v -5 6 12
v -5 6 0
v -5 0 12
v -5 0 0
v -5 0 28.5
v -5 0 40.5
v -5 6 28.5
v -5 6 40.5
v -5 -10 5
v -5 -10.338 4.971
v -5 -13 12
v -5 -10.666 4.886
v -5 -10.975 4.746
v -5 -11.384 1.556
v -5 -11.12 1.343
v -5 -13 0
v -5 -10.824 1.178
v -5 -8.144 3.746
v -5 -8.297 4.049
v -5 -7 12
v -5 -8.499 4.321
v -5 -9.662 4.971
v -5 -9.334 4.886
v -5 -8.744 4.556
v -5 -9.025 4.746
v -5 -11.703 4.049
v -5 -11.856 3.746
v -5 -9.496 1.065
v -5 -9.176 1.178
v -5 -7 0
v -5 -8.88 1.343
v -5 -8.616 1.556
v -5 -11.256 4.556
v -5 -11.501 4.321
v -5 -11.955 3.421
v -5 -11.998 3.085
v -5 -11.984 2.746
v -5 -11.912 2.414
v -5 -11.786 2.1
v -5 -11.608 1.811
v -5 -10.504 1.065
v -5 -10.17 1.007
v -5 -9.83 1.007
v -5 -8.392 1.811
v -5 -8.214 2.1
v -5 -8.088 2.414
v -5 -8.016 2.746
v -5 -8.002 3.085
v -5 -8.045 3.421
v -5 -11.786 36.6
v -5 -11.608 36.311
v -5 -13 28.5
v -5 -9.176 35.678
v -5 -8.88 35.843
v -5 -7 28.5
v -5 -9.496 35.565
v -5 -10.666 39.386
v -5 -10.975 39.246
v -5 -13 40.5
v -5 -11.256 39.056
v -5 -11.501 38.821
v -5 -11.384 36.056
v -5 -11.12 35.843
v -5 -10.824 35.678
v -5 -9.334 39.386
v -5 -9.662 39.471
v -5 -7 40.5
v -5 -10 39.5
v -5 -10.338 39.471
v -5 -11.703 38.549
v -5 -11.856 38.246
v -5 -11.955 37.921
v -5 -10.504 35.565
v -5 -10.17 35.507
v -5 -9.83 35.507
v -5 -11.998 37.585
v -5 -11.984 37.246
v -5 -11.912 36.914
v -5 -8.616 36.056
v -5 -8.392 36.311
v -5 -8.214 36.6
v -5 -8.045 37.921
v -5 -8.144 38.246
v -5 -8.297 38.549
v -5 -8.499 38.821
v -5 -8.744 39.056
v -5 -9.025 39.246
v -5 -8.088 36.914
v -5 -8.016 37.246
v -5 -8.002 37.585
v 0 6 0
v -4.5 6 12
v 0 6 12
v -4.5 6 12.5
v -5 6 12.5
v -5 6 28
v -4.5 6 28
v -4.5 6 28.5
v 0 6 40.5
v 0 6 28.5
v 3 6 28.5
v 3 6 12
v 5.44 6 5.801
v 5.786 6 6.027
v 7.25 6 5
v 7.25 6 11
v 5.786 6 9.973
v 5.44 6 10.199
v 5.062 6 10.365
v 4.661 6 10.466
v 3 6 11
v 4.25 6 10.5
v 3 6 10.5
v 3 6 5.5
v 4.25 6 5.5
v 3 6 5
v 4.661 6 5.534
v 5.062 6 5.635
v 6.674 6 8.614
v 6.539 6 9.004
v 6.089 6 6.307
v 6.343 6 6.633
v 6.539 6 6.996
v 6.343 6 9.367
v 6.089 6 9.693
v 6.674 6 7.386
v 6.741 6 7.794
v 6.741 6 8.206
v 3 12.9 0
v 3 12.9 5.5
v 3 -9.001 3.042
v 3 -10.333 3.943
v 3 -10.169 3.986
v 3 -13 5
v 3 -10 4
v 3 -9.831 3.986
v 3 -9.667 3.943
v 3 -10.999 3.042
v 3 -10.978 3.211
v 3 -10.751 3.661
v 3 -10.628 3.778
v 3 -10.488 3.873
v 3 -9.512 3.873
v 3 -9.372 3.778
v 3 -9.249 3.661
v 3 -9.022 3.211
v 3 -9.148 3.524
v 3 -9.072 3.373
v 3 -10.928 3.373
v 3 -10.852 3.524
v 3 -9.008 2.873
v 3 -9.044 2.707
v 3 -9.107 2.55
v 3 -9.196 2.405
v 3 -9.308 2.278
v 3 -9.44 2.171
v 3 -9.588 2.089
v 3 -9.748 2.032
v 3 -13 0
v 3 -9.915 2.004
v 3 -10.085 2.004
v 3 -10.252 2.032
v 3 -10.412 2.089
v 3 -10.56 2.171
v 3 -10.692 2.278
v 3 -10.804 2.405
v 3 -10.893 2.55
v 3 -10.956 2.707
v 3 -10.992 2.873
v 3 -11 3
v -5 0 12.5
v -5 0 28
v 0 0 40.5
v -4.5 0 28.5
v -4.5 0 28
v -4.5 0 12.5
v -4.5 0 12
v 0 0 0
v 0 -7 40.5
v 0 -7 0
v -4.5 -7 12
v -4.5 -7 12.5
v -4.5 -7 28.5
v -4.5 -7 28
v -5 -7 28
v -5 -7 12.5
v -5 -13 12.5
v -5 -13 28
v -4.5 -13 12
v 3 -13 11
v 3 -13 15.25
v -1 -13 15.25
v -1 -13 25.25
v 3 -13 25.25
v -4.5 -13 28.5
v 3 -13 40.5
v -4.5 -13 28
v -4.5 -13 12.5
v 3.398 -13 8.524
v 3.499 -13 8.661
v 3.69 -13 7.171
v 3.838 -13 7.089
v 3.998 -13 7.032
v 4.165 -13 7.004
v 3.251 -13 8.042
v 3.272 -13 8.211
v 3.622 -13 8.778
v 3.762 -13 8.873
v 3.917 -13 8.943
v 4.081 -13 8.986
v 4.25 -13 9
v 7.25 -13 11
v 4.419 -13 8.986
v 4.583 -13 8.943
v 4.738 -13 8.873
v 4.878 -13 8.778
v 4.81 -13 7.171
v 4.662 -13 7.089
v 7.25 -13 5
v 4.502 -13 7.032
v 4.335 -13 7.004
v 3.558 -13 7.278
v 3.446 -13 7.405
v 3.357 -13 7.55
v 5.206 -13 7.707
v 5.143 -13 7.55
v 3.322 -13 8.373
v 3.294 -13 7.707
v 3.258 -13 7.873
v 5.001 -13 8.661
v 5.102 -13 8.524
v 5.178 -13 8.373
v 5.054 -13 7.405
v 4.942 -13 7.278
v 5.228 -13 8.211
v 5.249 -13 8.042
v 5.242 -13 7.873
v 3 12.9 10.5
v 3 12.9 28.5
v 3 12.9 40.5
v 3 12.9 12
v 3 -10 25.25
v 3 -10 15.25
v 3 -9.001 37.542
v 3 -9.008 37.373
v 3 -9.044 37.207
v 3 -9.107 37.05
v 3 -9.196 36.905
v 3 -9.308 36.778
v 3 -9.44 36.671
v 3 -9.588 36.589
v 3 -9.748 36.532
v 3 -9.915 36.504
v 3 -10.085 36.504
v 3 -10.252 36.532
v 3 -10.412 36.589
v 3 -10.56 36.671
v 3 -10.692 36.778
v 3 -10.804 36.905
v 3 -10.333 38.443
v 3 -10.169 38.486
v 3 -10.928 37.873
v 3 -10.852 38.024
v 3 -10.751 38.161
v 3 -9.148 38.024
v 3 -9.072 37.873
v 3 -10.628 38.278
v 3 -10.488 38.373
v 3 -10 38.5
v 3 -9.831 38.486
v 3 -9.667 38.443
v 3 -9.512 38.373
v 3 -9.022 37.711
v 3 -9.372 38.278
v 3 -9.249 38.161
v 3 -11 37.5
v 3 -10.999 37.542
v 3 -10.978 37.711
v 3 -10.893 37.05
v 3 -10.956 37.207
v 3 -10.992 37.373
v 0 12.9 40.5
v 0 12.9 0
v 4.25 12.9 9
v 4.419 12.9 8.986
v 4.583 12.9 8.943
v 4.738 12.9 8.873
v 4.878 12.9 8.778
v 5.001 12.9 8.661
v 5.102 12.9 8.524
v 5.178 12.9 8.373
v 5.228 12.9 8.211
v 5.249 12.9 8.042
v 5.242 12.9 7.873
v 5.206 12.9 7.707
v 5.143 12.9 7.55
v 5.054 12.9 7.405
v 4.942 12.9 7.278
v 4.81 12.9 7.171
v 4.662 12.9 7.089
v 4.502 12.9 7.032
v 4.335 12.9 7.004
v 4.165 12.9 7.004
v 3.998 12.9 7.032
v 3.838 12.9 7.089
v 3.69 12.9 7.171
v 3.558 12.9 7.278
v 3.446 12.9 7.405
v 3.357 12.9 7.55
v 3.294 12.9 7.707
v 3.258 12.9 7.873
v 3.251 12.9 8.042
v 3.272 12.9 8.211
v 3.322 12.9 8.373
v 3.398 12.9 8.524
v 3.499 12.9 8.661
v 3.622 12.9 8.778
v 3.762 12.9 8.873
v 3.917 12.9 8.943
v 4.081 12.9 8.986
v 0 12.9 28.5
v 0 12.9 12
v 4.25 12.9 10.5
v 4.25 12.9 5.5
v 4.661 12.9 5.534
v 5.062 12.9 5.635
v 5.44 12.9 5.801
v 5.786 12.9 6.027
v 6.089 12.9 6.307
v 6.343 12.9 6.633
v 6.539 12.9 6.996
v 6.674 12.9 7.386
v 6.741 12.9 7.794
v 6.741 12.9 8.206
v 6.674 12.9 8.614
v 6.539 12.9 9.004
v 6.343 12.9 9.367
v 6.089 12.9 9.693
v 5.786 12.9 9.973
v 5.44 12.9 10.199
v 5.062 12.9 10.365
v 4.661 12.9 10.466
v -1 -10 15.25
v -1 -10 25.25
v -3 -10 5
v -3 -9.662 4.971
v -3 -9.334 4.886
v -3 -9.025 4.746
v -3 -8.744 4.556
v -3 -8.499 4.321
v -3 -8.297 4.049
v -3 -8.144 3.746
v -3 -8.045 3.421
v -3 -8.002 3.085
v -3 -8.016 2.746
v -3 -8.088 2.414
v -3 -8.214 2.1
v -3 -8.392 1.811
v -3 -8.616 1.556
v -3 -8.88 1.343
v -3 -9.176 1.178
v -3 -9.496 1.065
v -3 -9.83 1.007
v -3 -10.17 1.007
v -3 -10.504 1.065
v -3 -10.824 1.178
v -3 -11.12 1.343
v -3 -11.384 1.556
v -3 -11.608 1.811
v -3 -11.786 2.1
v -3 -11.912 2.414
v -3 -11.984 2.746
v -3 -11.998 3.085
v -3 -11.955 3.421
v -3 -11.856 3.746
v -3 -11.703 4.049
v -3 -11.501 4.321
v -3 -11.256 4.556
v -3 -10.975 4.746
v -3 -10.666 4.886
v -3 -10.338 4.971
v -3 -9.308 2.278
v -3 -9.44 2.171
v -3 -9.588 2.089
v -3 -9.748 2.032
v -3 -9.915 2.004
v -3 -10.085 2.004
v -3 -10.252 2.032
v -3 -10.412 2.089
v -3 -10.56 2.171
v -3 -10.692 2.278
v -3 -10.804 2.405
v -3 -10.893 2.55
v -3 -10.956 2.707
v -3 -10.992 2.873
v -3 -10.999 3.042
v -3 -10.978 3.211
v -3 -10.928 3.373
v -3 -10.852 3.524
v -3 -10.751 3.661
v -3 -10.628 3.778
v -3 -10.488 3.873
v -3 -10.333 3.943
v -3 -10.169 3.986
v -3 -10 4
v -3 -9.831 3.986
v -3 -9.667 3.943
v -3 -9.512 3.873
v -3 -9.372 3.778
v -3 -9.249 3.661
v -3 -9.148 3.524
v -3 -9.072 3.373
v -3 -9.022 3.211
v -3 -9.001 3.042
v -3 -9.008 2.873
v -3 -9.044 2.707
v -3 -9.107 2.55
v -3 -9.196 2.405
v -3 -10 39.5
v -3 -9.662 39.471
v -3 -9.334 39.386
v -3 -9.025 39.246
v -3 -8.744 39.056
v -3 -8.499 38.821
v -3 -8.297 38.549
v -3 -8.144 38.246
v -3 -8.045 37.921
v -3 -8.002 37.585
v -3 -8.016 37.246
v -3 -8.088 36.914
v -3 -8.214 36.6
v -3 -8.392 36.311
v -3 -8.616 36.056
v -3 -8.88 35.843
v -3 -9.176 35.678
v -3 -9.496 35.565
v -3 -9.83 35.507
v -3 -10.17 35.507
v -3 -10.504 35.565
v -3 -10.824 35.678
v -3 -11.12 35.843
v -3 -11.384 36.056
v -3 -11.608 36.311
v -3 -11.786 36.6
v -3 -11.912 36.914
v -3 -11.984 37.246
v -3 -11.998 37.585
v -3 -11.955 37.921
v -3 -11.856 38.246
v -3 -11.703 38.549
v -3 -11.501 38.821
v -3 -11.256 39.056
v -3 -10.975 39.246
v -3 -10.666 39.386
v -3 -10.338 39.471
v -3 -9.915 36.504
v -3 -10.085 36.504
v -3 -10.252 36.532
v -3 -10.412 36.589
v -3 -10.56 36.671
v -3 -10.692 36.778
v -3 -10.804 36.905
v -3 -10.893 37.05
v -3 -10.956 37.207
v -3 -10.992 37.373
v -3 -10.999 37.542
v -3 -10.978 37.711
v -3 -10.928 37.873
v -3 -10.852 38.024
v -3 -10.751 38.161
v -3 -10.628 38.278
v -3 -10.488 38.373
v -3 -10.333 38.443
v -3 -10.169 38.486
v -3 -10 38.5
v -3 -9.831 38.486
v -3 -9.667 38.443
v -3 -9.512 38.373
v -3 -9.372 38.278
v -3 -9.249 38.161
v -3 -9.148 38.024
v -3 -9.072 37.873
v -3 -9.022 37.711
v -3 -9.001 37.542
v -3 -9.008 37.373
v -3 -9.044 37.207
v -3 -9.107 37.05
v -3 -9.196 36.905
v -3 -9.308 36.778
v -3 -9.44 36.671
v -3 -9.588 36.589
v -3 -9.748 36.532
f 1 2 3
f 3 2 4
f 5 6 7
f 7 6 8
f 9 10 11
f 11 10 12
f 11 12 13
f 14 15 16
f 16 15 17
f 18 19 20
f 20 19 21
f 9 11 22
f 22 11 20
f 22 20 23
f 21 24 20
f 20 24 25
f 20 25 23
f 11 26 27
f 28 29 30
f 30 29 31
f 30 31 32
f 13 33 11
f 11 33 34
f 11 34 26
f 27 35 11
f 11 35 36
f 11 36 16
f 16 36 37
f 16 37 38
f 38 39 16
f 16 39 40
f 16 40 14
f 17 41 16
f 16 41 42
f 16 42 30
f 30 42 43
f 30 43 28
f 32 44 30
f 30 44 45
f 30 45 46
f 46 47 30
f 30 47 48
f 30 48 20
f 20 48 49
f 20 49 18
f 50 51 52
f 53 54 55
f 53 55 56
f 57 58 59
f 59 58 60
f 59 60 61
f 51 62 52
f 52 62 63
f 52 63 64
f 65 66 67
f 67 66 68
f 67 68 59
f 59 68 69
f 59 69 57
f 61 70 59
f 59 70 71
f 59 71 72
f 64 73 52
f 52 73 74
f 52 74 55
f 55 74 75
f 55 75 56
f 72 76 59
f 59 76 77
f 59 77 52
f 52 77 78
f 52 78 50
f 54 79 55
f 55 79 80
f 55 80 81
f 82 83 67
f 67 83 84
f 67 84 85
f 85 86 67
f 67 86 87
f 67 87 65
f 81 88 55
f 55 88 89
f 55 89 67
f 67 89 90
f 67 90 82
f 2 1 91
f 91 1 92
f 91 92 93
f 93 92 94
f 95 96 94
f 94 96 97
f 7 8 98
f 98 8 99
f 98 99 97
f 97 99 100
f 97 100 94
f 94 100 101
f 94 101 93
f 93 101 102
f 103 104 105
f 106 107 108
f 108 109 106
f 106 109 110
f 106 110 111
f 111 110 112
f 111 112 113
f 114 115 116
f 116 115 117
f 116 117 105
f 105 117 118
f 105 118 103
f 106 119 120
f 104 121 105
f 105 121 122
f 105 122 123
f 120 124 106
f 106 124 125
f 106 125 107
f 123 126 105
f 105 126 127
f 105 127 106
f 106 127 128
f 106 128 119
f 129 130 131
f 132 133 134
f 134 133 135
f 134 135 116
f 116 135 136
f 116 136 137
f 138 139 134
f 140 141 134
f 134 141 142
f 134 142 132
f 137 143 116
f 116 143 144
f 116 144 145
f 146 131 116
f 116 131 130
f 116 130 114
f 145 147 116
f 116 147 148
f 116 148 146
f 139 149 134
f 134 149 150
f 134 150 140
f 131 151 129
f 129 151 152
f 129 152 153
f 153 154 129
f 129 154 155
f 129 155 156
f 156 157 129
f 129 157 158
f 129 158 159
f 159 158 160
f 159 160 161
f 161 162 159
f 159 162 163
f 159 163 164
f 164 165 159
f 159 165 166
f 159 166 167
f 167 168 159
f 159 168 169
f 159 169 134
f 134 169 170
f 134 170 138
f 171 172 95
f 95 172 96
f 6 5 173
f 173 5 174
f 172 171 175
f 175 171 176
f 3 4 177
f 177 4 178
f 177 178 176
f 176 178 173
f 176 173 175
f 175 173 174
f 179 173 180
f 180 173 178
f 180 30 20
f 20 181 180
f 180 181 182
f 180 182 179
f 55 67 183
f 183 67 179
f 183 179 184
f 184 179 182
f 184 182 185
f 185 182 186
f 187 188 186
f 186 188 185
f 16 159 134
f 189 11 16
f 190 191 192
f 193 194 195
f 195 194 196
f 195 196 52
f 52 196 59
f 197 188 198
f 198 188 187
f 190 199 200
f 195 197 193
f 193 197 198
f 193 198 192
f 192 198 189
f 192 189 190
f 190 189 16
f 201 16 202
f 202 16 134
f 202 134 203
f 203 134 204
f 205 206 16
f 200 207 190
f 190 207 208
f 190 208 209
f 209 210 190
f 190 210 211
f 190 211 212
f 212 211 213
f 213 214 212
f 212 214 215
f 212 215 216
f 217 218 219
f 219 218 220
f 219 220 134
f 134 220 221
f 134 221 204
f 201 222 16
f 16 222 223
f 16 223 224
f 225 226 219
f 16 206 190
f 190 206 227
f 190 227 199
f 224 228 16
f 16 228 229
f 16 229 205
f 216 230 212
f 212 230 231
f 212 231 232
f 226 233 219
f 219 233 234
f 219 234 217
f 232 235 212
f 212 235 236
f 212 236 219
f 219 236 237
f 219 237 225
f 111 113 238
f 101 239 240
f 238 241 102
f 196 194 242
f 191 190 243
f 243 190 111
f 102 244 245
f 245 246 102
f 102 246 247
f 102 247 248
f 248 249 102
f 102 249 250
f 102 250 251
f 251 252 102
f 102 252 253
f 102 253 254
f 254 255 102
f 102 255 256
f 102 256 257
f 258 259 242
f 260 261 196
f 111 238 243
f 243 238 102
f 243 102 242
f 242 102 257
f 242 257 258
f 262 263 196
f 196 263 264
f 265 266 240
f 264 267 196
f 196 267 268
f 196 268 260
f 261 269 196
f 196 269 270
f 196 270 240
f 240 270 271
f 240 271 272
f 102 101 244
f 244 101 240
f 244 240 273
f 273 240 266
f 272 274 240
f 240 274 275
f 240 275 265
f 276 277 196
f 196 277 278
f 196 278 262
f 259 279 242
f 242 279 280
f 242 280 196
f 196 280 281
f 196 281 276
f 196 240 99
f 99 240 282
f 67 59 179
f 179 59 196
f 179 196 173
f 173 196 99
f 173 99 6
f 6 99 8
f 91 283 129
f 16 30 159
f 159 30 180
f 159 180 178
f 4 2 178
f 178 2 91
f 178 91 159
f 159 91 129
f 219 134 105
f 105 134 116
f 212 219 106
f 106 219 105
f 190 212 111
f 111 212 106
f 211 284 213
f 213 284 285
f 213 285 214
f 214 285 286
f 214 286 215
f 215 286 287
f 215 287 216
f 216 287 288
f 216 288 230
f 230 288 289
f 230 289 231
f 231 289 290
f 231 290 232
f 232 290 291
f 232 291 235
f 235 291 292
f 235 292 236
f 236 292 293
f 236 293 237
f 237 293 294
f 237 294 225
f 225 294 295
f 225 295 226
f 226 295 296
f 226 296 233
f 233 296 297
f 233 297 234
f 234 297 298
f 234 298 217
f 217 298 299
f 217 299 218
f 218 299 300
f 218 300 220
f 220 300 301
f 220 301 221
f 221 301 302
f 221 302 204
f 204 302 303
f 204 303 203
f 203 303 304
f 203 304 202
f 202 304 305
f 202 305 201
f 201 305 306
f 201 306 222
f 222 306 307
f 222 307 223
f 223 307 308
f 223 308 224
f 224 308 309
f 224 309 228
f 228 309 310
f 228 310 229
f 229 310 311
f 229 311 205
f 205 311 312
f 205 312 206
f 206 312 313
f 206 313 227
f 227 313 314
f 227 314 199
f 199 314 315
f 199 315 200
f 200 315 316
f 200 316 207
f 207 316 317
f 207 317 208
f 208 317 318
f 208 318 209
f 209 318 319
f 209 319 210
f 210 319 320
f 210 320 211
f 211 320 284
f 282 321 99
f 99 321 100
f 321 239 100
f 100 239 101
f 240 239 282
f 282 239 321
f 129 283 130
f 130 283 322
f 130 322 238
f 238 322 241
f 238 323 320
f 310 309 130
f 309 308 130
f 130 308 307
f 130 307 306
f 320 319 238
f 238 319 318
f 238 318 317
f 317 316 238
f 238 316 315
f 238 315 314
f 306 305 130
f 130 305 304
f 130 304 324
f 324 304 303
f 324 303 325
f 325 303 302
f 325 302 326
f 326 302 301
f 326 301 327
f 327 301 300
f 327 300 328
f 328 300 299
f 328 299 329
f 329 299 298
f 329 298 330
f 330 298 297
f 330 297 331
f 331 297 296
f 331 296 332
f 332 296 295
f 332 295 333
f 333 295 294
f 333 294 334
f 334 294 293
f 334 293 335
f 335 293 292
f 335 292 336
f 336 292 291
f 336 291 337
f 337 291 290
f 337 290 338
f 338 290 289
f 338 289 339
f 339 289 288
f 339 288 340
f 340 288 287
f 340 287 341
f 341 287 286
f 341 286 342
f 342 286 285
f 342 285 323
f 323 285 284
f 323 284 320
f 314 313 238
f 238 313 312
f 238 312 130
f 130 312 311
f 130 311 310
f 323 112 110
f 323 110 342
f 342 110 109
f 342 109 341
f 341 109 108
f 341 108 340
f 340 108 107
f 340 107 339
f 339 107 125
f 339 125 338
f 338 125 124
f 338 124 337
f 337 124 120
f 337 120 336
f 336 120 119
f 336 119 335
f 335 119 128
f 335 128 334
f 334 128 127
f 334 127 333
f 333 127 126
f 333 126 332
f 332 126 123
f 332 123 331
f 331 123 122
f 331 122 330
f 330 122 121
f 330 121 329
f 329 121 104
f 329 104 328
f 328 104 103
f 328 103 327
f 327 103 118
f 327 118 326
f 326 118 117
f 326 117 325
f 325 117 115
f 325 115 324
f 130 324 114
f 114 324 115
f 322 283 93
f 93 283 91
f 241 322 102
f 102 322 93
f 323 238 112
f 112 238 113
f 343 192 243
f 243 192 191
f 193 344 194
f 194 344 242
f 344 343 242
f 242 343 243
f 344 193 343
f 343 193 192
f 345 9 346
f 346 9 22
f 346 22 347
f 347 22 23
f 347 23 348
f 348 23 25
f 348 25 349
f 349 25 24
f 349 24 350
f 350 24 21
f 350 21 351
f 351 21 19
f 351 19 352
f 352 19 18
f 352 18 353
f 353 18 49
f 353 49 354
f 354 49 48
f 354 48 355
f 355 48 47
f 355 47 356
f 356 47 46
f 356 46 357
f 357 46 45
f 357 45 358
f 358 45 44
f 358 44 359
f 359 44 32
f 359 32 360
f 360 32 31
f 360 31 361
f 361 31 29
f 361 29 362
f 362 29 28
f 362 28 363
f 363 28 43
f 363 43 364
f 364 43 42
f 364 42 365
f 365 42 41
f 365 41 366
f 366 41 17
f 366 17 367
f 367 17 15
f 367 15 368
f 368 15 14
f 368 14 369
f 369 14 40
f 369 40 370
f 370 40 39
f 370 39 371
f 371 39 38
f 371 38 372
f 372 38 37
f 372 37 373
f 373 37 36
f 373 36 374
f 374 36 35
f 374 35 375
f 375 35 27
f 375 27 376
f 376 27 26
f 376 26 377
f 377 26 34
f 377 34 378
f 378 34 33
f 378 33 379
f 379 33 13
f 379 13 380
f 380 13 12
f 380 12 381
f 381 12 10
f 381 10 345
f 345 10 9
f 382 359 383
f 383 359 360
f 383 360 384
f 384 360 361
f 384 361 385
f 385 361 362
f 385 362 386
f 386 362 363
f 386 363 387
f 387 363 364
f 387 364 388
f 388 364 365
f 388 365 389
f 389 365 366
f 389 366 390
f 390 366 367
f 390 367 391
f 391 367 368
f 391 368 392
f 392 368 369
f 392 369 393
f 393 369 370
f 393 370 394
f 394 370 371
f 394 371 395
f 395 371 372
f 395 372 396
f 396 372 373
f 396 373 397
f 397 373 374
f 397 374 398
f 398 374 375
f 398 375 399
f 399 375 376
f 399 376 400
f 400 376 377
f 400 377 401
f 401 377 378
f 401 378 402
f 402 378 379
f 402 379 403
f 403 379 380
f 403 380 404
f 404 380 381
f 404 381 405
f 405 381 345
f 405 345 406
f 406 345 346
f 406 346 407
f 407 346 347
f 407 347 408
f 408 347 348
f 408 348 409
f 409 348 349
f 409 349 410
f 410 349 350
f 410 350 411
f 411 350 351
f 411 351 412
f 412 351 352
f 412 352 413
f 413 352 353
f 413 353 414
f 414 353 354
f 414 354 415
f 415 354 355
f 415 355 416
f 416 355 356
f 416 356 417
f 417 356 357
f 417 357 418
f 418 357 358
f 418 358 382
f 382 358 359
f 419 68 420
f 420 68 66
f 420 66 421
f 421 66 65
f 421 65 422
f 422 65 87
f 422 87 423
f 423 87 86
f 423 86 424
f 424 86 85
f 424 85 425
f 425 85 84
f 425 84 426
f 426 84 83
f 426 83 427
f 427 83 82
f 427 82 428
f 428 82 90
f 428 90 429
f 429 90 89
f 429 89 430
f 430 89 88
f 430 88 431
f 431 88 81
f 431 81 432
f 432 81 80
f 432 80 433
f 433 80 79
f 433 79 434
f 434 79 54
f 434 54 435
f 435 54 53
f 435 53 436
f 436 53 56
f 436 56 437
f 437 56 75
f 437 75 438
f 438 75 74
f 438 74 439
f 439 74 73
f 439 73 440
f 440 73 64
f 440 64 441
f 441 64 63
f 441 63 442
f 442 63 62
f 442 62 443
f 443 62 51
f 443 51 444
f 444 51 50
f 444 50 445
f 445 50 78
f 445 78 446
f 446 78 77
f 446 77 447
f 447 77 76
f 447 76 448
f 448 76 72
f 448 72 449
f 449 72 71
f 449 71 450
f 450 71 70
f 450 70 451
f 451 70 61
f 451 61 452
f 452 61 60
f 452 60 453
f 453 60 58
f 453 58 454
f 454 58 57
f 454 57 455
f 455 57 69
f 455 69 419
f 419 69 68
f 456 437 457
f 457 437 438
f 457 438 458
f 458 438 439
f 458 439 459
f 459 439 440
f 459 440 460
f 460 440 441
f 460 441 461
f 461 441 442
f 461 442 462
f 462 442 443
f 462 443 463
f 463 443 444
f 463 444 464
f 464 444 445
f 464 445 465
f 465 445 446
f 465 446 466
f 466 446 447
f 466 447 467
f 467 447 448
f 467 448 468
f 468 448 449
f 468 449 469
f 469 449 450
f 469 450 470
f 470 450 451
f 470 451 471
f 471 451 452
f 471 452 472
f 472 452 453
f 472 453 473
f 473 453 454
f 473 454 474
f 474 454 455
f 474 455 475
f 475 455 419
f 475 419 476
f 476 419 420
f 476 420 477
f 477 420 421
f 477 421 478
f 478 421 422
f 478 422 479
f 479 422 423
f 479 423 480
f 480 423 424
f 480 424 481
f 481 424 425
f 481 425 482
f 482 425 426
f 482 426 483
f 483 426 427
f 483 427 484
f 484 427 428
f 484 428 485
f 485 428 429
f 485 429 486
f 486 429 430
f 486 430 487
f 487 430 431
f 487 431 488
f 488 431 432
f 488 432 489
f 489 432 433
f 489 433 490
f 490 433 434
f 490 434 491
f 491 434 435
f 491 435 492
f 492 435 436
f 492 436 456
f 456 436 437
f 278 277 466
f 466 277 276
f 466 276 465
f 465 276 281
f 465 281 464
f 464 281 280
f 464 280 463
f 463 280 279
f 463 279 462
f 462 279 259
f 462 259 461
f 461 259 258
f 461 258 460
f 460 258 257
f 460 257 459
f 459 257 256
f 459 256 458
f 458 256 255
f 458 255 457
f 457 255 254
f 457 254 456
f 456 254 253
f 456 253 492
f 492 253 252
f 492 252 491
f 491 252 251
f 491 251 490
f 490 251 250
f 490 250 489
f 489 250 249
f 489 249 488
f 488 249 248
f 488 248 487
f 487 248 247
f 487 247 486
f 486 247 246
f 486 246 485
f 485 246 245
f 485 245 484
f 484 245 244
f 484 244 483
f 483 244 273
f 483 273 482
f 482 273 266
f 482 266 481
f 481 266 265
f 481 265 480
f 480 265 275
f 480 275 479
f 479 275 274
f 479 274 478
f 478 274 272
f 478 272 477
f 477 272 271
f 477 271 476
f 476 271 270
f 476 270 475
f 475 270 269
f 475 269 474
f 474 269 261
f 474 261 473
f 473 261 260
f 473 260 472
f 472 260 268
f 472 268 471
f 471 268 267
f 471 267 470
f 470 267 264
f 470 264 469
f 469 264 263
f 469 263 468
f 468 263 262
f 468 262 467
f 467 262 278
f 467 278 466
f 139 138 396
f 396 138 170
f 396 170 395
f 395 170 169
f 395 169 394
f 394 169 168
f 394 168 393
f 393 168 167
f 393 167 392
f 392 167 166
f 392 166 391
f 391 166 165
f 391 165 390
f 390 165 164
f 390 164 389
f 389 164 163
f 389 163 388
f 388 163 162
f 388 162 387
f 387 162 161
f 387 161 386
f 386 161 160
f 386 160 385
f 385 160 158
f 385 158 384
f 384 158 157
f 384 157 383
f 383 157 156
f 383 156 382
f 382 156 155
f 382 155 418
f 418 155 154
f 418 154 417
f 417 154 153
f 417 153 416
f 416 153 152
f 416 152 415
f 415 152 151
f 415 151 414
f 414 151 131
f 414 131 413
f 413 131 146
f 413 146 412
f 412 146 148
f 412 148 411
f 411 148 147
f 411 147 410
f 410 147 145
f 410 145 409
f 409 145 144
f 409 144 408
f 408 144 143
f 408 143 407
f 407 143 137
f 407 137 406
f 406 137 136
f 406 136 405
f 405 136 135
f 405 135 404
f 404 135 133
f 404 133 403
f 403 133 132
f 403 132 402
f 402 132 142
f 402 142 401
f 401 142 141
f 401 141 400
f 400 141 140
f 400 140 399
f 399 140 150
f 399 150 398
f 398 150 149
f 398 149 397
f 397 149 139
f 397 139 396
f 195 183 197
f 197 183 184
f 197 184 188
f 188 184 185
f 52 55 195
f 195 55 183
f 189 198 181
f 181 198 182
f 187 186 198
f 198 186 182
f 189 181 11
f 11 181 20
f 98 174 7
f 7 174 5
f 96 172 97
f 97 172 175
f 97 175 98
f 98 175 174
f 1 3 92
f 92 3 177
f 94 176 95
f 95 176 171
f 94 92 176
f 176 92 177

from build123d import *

# Parameters (mm, degrees)
EXTRUDE_1_DEPTH     = 40.5
SKETCH_2_W          = 4.25
SKETCH_2_H          = 6
SKETCH_2_R          = 1
EXTRUDE_2_DEPTH     = 19
EXTRUDE_START       = 6.9
SKETCH_6_W          = 3
SKETCH_6_H          = 12
SKETCH_6_R          = 1
EXTRUDE_3_DEPTH     = 6.9
SKETCH_7_W          = 10
SKETCH_7_H          = 3
CUT_EXTRUDE_1_DEPTH = 4
SKETCH_9_R          = 2
CUT_EXTRUDE_2_DEPTH = 2
SKETCH_10_R         = 1
CUT_EXTRUDE_3_DEPTH = 12
SKETCH_12_W         = 0.5
SKETCH_12_H         = 19
CUT_EXTRUDE_4_DEPTH = 0.5


with BuildPart() as part:
    # 草图1 → 凸台-拉伸1 (new body)
    with BuildSketch(Plane.XY):
        Polygon((3, -13), (-5, -13), (-5, -7), (0, -7), (0, 0), (-5, 0), (-5, 6), (3, 6), align=None)
    extrude(amount=EXTRUDE_1_DEPTH)

    # 草图2 → 凸台-拉伸2 (add)
    with BuildSketch(Plane(origin=(0, 6, 0), x_dir=(1, 0, 0), z_dir=(0, 1, 0))):
        with Locations((5.125, -8)):
            Rectangle(SKETCH_2_W, SKETCH_2_H)
        with Locations(Location((4.25, -8, 0), (0, 0, 270))):
            Circle(SKETCH_2_R, mode=Mode.SUBTRACT)
    extrude(amount=-EXTRUDE_2_DEPTH)

    # 草图6 → 凸台-拉伸3 (add)
    # profile 1 of 2: a face of its own
    with BuildSketch(Plane(origin=(0, 6, 0), x_dir=(1, 0, 0), z_dir=(0, 1, 0)).offset(EXTRUDE_START)):
        with Locations((1.5, -34.5)):
            Rectangle(SKETCH_6_W, SKETCH_6_H)
    # profile 2 of 2: a face of its own
    with BuildSketch(Plane(origin=(0, 6, 0), x_dir=(1, 0, 0), z_dir=(0, 1, 0)).offset(EXTRUDE_START)):
        with BuildLine():
            Line((4.25, -10.5), (3, -10.5))
            Line((3, -10.5), (3, -12))
            Line((3, -12), (0, -12))
            Line((0, -12), (0, 0))
            Line((0, 0), (3, 0))
            Line((3, 0), (3, -5.5))
            Line((3, -5.5), (4.25, -5.5))
            ThreePointArc((4.25, -5.5), (6.75, -8), (4.25, -10.5))
        make_face()
        with Locations(Location((4.25, -8, 0), (0, 0, 270))):
            Circle(SKETCH_6_R, mode=Mode.SUBTRACT)
    extrude(amount=-EXTRUDE_3_DEPTH)

    # 草图7 → 切除-拉伸1 (cut)
    with BuildSketch(Plane(origin=(3, 0, 0), x_dir=(0, 0, -1), z_dir=(1, 0, 0))):
        with Locations((-20.25, -11.5)):
            Rectangle(SKETCH_7_W, SKETCH_7_H)
    extrude(amount=-CUT_EXTRUDE_1_DEPTH, mode=Mode.SUBTRACT)

    # 草图9 → 切除-拉伸2 (cut)
    with BuildSketch(Plane.ZY.offset(5)):
        with Locations((37.5, -10)):
            Circle(SKETCH_9_R)
        with Locations((3, -10)):
            Circle(SKETCH_9_R)
    extrude(amount=-CUT_EXTRUDE_2_DEPTH, mode=Mode.SUBTRACT)

    # 草图10 → 切除-拉伸3 (cut)
    with BuildSketch(Plane.ZY.offset(3)):
        with Locations((37.5, -10)):
            Circle(SKETCH_10_R)
        with Locations((3, -10)):
            Circle(SKETCH_10_R)
    extrude(amount=-CUT_EXTRUDE_3_DEPTH, mode=Mode.SUBTRACT)

    # 草图12 → 切除-拉伸4 (cut)
    with BuildSketch(Plane.ZY.offset(5)):
        with Locations((12.25, -3.5)):
            Rectangle(SKETCH_12_W, SKETCH_12_H)
        with Locations((28.25, -3.5)):
            Rectangle(SKETCH_12_W, SKETCH_12_H)
    extrude(amount=-CUT_EXTRUDE_4_DEPTH, mode=Mode.SUBTRACT)


solid = part.part
